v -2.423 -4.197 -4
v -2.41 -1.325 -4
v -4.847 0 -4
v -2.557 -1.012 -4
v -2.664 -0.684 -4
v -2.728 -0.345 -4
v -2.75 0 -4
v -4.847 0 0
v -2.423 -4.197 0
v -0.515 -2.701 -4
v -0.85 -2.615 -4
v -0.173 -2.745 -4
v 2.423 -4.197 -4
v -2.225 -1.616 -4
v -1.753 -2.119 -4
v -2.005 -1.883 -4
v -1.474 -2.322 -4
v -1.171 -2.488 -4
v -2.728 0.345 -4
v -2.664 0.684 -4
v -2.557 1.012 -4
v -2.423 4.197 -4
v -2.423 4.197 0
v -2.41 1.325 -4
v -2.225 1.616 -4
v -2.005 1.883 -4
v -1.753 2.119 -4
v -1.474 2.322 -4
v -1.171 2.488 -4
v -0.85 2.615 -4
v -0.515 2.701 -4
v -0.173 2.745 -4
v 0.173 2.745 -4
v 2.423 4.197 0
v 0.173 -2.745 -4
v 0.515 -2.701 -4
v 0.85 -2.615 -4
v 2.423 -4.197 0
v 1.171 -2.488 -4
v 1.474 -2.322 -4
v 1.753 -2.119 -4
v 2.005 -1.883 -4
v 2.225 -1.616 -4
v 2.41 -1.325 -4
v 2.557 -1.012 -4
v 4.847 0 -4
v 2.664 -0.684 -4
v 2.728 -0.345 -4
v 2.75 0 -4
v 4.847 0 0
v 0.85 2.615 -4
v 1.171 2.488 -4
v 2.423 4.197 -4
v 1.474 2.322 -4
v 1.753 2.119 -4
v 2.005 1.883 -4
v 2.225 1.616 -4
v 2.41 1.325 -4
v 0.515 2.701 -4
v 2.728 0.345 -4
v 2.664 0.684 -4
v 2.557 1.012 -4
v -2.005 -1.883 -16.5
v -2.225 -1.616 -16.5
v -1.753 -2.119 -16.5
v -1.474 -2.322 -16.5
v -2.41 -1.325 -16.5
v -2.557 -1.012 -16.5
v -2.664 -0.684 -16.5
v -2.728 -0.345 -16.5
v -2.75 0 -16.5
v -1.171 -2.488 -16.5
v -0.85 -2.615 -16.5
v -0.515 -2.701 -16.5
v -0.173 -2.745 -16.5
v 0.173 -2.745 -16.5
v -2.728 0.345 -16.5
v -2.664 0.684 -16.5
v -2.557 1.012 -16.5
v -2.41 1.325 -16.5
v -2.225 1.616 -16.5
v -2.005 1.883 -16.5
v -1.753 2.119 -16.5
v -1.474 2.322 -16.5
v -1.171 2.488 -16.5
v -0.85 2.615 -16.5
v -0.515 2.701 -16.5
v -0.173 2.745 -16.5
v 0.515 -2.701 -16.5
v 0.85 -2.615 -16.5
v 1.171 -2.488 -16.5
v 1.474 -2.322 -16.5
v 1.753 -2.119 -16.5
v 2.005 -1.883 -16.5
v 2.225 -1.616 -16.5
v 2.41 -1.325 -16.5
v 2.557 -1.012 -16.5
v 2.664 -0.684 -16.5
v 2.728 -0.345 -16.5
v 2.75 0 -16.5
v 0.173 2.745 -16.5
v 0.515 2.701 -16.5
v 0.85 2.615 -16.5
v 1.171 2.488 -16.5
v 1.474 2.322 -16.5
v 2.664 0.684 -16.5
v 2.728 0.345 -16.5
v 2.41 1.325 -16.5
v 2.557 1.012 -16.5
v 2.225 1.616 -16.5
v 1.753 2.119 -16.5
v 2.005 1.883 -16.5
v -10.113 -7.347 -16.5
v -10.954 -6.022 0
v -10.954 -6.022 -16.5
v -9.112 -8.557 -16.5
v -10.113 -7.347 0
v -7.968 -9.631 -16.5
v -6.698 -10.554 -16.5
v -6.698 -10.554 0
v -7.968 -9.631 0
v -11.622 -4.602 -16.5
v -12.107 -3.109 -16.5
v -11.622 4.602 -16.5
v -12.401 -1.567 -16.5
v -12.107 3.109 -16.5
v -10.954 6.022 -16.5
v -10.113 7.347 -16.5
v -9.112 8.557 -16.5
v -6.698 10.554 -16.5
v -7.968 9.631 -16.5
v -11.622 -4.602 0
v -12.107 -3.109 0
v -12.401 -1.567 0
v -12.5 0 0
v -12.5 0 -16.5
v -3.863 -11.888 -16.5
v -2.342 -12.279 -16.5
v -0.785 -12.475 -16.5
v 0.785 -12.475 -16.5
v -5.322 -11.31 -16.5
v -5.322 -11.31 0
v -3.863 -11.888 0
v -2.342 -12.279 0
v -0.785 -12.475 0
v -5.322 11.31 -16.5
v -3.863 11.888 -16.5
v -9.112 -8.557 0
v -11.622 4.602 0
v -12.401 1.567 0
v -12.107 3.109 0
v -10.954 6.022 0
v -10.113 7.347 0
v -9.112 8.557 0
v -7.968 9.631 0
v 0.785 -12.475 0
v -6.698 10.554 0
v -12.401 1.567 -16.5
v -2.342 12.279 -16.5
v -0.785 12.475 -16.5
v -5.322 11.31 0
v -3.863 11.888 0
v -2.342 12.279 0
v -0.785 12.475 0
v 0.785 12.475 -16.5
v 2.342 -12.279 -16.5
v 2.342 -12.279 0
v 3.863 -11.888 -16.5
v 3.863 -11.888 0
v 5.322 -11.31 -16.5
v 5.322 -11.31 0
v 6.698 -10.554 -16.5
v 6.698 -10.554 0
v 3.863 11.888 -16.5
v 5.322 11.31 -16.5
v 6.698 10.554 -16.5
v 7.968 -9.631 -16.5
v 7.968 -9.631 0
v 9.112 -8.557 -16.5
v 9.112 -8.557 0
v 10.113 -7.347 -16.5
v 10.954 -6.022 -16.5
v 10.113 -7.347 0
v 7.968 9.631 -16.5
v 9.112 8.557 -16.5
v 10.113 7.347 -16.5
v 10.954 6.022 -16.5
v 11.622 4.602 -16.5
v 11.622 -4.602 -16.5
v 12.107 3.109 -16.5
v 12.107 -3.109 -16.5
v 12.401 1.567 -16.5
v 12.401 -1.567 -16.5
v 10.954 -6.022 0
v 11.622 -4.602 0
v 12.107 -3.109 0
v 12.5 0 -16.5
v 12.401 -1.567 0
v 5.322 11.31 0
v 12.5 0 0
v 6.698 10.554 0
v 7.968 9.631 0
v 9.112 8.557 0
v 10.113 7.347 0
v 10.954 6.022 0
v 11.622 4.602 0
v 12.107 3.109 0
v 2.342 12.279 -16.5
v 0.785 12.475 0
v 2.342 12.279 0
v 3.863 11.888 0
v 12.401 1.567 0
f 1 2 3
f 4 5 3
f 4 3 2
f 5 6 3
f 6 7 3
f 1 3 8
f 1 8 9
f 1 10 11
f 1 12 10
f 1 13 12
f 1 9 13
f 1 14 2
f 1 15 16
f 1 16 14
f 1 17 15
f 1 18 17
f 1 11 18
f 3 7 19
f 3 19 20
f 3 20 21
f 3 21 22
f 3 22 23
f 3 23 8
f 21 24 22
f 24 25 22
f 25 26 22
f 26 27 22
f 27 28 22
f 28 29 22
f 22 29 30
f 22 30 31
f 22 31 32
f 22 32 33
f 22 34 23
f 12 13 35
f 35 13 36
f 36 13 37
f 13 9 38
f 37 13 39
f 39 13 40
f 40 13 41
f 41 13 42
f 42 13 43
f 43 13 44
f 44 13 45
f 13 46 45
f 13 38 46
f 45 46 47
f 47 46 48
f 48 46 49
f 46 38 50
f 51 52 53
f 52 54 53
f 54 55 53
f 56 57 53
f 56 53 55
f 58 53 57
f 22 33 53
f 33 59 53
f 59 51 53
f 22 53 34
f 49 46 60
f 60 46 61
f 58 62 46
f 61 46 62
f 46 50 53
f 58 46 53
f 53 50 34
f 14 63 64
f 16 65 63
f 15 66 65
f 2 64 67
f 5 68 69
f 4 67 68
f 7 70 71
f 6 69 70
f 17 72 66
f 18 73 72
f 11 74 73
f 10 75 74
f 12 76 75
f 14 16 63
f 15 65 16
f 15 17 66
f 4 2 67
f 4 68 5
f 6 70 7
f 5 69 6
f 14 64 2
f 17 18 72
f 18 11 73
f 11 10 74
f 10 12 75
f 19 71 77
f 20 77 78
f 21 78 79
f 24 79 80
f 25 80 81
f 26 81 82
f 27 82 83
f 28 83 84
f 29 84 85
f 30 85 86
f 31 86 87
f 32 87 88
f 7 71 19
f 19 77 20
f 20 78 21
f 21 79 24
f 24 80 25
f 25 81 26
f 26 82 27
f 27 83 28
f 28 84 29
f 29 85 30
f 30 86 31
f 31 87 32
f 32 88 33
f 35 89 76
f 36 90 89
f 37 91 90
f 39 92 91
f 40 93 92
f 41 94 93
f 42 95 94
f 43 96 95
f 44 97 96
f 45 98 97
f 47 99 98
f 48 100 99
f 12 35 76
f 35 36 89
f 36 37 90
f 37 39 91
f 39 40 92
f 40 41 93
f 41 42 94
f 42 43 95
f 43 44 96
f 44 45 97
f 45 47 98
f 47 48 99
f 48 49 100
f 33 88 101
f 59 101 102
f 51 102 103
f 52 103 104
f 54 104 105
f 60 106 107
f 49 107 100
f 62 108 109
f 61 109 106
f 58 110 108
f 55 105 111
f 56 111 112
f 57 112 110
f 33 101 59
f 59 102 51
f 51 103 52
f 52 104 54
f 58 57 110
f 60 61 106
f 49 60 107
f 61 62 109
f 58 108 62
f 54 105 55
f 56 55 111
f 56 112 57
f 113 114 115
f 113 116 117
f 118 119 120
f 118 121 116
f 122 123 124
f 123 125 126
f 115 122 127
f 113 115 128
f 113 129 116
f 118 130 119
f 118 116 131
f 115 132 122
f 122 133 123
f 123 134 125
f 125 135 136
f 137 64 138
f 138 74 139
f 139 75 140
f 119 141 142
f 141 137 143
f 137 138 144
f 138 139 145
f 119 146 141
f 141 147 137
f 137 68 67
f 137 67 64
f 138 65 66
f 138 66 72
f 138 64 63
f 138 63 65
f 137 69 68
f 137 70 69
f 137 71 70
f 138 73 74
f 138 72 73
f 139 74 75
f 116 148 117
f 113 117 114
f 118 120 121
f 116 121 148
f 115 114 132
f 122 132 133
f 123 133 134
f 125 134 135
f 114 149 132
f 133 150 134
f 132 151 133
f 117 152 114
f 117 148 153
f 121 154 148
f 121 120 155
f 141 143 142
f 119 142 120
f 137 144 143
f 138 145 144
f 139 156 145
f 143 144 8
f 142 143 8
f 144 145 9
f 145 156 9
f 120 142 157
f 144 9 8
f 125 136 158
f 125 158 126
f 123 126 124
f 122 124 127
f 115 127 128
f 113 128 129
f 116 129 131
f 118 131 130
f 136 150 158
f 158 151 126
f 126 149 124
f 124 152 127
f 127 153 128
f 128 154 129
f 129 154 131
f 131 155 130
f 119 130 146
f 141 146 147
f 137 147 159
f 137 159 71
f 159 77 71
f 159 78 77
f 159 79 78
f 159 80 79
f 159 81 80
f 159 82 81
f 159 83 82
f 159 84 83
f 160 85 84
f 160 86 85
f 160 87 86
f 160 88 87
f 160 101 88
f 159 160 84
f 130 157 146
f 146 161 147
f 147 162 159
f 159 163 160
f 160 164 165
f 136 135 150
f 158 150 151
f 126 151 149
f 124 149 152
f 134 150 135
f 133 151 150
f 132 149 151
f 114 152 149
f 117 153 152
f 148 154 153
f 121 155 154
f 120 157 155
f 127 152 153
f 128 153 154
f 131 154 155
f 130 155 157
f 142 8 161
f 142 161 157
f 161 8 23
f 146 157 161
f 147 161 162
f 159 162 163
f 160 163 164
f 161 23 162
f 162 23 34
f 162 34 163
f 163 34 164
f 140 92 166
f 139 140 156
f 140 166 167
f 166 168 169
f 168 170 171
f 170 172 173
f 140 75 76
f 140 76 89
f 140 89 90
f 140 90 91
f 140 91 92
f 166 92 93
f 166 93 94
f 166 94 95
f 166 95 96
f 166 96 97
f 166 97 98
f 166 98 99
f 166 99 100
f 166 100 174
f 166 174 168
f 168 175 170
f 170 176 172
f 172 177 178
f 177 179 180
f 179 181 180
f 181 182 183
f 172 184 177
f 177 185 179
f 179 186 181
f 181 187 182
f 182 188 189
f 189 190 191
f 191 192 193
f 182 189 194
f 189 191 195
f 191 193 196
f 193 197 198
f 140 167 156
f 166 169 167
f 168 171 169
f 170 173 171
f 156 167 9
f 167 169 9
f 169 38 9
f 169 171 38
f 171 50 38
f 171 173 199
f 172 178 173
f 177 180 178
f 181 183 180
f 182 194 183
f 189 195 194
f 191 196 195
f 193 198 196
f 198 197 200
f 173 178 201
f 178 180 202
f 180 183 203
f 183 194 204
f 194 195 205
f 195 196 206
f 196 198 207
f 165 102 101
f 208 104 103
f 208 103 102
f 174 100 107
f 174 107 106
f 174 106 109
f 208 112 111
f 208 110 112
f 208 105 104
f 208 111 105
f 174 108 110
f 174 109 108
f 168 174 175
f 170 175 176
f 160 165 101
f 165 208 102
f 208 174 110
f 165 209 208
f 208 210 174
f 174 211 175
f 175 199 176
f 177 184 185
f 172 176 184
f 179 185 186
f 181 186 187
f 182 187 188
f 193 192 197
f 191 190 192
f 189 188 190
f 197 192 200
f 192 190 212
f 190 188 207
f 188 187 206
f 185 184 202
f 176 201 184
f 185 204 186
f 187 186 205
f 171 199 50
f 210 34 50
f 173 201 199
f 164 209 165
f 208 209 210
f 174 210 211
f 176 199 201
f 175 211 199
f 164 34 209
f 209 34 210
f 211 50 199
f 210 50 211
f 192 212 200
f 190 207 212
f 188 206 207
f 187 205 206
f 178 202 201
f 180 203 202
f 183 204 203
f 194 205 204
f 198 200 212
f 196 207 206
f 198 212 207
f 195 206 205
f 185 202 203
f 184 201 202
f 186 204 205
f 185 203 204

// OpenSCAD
$fn = 50;

difference() {
	union() {
		translate(v = [0, 0, -16.5]) {
			cylinder(h = 16.5, r = 12.5);
		}
	}
	union() {
		translate(v = [0, 0, 0]) {
			rotate(a = [0, 0, 0]) {
				difference() {
					union() {
						translate(v = [0, 0, -4]) {
							linear_extrude(height = 4) {
								polygon(points = [[4.8468, 0.0], [2.4234000000000004, 4.197451927062417], [-2.423399999999999, 4.197451927062417], [-4.8468, 5.935618106107392e-16], [-2.423400000000002, -4.197451927062416], [2.423399999999997, -4.197451927062419]]);
							}
						}
					}
					union();
				}
			}
		}
		#translate(v = [0, 0, -100.0]) {
			cylinder(h = 200, r = 2.75);
		}
	}
}
